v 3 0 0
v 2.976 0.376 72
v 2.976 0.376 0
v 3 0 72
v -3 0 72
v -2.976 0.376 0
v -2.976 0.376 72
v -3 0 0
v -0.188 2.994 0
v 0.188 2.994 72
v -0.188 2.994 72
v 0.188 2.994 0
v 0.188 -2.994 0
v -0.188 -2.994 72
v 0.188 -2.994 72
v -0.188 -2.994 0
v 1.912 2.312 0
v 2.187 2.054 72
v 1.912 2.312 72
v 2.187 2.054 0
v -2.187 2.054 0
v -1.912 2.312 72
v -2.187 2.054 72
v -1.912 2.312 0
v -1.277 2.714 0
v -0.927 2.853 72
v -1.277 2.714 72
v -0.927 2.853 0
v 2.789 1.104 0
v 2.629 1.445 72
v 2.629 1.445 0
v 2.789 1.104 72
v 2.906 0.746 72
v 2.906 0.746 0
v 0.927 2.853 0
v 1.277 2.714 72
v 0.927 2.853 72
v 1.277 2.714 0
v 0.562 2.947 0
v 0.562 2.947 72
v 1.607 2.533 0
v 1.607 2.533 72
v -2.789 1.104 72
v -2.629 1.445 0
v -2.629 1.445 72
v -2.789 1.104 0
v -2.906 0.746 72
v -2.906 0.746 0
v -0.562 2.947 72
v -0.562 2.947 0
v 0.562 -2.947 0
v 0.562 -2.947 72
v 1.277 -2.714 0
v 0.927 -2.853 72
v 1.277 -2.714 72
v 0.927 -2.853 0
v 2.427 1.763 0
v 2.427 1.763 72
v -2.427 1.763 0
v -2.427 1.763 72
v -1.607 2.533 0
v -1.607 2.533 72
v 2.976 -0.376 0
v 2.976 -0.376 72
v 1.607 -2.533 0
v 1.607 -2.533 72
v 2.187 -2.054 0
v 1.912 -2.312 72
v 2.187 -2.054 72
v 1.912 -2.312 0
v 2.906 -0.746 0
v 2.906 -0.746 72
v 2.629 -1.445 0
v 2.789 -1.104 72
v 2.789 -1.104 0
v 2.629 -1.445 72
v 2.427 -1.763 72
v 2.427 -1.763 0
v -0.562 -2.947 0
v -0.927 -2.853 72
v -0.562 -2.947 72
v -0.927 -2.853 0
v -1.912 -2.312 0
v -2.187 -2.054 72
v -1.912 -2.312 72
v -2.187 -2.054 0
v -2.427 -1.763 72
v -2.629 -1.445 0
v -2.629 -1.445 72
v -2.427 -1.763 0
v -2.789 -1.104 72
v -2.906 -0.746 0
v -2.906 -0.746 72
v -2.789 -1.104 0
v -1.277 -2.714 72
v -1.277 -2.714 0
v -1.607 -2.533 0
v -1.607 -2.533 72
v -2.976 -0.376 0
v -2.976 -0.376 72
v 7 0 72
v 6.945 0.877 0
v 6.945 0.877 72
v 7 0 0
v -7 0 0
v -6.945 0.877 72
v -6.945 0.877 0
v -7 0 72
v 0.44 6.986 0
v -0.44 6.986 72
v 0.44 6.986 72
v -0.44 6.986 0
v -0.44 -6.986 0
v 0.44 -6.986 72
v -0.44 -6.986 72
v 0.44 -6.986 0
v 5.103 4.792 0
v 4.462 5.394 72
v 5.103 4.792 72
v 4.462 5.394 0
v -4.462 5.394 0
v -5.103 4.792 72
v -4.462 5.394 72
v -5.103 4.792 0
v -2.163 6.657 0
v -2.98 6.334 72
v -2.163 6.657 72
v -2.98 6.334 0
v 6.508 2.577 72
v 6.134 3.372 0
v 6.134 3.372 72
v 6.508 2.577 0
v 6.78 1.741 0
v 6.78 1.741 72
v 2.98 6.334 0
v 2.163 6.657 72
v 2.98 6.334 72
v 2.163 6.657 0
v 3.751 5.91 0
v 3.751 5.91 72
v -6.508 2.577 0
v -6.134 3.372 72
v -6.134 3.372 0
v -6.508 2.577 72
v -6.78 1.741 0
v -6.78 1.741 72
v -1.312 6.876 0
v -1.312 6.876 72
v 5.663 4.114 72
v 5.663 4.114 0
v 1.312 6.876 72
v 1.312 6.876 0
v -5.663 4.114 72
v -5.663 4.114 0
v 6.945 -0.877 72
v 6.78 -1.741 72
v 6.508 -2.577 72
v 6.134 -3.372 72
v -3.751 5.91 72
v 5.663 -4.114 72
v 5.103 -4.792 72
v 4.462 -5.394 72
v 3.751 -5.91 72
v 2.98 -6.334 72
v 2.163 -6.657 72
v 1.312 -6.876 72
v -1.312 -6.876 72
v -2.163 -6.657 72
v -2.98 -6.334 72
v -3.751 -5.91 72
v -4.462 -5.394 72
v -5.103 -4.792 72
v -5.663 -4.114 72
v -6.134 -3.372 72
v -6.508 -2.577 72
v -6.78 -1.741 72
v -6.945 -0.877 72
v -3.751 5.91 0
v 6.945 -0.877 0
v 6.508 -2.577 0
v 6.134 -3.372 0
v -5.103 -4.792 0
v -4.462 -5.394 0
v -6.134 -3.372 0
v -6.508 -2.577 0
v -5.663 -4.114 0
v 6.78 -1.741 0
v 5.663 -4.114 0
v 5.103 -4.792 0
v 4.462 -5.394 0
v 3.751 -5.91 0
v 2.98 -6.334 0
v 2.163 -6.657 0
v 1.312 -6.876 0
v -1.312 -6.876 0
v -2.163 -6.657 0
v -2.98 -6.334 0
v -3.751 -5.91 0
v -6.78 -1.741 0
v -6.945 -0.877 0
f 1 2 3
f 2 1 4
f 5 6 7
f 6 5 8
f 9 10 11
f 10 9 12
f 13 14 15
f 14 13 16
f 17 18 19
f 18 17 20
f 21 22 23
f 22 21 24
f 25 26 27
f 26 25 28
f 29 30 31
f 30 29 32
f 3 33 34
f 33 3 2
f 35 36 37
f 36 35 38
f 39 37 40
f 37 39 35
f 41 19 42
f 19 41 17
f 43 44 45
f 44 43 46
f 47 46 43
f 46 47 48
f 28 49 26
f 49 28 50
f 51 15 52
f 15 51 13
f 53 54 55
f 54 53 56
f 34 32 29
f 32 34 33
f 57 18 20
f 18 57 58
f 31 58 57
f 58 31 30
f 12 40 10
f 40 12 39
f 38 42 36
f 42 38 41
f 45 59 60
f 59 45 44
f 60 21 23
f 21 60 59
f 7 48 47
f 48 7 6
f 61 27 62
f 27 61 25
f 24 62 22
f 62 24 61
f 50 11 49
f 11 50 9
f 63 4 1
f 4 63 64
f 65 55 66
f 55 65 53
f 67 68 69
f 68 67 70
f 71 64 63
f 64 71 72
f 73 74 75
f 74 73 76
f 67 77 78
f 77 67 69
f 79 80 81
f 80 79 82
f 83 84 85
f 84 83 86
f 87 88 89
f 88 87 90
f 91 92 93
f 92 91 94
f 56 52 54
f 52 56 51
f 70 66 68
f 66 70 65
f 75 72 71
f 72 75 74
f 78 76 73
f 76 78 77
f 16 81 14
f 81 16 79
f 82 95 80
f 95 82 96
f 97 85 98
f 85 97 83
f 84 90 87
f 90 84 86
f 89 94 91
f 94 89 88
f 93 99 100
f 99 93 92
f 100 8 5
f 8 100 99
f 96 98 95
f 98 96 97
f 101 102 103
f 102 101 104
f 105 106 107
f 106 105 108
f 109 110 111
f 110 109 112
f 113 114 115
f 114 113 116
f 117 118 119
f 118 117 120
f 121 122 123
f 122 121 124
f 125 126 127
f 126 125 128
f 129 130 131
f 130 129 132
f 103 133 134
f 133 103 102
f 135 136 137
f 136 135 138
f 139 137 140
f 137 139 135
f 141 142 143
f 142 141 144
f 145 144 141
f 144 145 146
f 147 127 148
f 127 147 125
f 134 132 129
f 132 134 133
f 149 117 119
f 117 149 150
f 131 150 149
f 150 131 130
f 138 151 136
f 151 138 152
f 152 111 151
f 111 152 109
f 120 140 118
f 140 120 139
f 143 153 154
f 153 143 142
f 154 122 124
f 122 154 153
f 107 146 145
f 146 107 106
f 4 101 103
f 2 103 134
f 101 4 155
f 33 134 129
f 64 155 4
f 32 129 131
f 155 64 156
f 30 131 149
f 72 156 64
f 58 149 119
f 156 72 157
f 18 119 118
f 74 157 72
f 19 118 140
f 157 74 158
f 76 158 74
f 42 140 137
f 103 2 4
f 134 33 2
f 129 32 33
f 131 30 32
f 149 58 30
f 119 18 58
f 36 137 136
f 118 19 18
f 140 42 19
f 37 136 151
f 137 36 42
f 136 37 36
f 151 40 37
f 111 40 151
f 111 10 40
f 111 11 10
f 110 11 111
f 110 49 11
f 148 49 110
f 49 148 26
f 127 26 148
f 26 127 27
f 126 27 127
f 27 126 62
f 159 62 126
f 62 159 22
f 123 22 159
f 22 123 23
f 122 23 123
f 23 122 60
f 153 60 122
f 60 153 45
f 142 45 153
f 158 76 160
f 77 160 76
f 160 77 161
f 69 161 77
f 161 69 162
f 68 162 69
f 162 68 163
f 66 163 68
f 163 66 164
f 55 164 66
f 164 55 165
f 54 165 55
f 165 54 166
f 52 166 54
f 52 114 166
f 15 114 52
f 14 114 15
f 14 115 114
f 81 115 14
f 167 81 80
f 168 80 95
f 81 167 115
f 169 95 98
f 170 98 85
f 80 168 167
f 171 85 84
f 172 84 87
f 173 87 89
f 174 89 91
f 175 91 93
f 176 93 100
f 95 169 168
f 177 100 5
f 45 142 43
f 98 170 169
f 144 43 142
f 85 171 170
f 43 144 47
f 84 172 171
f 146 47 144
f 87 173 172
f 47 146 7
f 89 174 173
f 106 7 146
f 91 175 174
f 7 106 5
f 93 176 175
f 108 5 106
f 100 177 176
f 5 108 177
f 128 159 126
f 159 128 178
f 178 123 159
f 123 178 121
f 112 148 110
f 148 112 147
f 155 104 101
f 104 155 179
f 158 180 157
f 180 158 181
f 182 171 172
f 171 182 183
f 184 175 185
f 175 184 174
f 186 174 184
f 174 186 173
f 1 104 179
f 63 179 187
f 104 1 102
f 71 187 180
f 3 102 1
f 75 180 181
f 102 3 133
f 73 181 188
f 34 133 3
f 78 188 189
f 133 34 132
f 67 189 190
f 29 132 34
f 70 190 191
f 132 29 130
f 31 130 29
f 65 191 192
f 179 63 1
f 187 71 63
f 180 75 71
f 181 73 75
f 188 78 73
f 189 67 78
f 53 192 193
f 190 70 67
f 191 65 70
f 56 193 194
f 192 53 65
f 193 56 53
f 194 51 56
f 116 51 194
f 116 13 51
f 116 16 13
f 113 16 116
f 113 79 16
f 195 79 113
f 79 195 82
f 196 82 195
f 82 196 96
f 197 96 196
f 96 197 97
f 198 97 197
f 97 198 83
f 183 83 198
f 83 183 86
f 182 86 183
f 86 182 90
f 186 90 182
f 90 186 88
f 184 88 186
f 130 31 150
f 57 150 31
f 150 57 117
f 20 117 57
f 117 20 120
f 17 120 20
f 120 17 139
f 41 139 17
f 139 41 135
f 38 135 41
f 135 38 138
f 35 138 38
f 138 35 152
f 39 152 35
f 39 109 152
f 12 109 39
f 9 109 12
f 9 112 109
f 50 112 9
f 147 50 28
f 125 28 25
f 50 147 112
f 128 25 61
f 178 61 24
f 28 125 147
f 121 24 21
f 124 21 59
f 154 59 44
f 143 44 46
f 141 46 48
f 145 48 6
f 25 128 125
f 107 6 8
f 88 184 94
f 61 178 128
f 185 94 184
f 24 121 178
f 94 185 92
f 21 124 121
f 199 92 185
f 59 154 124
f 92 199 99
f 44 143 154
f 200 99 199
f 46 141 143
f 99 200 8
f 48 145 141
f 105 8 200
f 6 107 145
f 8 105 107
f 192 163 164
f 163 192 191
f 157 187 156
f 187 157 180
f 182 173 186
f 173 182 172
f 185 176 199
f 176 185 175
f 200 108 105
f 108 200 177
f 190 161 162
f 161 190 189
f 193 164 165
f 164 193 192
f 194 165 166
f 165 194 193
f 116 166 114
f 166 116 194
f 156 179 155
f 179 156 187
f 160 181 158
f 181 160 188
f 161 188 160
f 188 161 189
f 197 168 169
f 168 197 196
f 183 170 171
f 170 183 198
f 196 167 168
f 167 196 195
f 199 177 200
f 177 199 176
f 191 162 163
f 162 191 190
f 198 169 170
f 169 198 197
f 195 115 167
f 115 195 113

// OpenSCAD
$fn = 50;


difference() {
	union() {
		cylinder(h = 72, r = 7.0000000000);
	}
	union() {
		translate(v = [0, 0, -100]) {
			cylinder(h = 200, r = 3.0000000000);
		}
		translate(v = [0, 0, -100]) {
			cylinder(h = 200, r = 1.5000000000);
		}
	}
}
